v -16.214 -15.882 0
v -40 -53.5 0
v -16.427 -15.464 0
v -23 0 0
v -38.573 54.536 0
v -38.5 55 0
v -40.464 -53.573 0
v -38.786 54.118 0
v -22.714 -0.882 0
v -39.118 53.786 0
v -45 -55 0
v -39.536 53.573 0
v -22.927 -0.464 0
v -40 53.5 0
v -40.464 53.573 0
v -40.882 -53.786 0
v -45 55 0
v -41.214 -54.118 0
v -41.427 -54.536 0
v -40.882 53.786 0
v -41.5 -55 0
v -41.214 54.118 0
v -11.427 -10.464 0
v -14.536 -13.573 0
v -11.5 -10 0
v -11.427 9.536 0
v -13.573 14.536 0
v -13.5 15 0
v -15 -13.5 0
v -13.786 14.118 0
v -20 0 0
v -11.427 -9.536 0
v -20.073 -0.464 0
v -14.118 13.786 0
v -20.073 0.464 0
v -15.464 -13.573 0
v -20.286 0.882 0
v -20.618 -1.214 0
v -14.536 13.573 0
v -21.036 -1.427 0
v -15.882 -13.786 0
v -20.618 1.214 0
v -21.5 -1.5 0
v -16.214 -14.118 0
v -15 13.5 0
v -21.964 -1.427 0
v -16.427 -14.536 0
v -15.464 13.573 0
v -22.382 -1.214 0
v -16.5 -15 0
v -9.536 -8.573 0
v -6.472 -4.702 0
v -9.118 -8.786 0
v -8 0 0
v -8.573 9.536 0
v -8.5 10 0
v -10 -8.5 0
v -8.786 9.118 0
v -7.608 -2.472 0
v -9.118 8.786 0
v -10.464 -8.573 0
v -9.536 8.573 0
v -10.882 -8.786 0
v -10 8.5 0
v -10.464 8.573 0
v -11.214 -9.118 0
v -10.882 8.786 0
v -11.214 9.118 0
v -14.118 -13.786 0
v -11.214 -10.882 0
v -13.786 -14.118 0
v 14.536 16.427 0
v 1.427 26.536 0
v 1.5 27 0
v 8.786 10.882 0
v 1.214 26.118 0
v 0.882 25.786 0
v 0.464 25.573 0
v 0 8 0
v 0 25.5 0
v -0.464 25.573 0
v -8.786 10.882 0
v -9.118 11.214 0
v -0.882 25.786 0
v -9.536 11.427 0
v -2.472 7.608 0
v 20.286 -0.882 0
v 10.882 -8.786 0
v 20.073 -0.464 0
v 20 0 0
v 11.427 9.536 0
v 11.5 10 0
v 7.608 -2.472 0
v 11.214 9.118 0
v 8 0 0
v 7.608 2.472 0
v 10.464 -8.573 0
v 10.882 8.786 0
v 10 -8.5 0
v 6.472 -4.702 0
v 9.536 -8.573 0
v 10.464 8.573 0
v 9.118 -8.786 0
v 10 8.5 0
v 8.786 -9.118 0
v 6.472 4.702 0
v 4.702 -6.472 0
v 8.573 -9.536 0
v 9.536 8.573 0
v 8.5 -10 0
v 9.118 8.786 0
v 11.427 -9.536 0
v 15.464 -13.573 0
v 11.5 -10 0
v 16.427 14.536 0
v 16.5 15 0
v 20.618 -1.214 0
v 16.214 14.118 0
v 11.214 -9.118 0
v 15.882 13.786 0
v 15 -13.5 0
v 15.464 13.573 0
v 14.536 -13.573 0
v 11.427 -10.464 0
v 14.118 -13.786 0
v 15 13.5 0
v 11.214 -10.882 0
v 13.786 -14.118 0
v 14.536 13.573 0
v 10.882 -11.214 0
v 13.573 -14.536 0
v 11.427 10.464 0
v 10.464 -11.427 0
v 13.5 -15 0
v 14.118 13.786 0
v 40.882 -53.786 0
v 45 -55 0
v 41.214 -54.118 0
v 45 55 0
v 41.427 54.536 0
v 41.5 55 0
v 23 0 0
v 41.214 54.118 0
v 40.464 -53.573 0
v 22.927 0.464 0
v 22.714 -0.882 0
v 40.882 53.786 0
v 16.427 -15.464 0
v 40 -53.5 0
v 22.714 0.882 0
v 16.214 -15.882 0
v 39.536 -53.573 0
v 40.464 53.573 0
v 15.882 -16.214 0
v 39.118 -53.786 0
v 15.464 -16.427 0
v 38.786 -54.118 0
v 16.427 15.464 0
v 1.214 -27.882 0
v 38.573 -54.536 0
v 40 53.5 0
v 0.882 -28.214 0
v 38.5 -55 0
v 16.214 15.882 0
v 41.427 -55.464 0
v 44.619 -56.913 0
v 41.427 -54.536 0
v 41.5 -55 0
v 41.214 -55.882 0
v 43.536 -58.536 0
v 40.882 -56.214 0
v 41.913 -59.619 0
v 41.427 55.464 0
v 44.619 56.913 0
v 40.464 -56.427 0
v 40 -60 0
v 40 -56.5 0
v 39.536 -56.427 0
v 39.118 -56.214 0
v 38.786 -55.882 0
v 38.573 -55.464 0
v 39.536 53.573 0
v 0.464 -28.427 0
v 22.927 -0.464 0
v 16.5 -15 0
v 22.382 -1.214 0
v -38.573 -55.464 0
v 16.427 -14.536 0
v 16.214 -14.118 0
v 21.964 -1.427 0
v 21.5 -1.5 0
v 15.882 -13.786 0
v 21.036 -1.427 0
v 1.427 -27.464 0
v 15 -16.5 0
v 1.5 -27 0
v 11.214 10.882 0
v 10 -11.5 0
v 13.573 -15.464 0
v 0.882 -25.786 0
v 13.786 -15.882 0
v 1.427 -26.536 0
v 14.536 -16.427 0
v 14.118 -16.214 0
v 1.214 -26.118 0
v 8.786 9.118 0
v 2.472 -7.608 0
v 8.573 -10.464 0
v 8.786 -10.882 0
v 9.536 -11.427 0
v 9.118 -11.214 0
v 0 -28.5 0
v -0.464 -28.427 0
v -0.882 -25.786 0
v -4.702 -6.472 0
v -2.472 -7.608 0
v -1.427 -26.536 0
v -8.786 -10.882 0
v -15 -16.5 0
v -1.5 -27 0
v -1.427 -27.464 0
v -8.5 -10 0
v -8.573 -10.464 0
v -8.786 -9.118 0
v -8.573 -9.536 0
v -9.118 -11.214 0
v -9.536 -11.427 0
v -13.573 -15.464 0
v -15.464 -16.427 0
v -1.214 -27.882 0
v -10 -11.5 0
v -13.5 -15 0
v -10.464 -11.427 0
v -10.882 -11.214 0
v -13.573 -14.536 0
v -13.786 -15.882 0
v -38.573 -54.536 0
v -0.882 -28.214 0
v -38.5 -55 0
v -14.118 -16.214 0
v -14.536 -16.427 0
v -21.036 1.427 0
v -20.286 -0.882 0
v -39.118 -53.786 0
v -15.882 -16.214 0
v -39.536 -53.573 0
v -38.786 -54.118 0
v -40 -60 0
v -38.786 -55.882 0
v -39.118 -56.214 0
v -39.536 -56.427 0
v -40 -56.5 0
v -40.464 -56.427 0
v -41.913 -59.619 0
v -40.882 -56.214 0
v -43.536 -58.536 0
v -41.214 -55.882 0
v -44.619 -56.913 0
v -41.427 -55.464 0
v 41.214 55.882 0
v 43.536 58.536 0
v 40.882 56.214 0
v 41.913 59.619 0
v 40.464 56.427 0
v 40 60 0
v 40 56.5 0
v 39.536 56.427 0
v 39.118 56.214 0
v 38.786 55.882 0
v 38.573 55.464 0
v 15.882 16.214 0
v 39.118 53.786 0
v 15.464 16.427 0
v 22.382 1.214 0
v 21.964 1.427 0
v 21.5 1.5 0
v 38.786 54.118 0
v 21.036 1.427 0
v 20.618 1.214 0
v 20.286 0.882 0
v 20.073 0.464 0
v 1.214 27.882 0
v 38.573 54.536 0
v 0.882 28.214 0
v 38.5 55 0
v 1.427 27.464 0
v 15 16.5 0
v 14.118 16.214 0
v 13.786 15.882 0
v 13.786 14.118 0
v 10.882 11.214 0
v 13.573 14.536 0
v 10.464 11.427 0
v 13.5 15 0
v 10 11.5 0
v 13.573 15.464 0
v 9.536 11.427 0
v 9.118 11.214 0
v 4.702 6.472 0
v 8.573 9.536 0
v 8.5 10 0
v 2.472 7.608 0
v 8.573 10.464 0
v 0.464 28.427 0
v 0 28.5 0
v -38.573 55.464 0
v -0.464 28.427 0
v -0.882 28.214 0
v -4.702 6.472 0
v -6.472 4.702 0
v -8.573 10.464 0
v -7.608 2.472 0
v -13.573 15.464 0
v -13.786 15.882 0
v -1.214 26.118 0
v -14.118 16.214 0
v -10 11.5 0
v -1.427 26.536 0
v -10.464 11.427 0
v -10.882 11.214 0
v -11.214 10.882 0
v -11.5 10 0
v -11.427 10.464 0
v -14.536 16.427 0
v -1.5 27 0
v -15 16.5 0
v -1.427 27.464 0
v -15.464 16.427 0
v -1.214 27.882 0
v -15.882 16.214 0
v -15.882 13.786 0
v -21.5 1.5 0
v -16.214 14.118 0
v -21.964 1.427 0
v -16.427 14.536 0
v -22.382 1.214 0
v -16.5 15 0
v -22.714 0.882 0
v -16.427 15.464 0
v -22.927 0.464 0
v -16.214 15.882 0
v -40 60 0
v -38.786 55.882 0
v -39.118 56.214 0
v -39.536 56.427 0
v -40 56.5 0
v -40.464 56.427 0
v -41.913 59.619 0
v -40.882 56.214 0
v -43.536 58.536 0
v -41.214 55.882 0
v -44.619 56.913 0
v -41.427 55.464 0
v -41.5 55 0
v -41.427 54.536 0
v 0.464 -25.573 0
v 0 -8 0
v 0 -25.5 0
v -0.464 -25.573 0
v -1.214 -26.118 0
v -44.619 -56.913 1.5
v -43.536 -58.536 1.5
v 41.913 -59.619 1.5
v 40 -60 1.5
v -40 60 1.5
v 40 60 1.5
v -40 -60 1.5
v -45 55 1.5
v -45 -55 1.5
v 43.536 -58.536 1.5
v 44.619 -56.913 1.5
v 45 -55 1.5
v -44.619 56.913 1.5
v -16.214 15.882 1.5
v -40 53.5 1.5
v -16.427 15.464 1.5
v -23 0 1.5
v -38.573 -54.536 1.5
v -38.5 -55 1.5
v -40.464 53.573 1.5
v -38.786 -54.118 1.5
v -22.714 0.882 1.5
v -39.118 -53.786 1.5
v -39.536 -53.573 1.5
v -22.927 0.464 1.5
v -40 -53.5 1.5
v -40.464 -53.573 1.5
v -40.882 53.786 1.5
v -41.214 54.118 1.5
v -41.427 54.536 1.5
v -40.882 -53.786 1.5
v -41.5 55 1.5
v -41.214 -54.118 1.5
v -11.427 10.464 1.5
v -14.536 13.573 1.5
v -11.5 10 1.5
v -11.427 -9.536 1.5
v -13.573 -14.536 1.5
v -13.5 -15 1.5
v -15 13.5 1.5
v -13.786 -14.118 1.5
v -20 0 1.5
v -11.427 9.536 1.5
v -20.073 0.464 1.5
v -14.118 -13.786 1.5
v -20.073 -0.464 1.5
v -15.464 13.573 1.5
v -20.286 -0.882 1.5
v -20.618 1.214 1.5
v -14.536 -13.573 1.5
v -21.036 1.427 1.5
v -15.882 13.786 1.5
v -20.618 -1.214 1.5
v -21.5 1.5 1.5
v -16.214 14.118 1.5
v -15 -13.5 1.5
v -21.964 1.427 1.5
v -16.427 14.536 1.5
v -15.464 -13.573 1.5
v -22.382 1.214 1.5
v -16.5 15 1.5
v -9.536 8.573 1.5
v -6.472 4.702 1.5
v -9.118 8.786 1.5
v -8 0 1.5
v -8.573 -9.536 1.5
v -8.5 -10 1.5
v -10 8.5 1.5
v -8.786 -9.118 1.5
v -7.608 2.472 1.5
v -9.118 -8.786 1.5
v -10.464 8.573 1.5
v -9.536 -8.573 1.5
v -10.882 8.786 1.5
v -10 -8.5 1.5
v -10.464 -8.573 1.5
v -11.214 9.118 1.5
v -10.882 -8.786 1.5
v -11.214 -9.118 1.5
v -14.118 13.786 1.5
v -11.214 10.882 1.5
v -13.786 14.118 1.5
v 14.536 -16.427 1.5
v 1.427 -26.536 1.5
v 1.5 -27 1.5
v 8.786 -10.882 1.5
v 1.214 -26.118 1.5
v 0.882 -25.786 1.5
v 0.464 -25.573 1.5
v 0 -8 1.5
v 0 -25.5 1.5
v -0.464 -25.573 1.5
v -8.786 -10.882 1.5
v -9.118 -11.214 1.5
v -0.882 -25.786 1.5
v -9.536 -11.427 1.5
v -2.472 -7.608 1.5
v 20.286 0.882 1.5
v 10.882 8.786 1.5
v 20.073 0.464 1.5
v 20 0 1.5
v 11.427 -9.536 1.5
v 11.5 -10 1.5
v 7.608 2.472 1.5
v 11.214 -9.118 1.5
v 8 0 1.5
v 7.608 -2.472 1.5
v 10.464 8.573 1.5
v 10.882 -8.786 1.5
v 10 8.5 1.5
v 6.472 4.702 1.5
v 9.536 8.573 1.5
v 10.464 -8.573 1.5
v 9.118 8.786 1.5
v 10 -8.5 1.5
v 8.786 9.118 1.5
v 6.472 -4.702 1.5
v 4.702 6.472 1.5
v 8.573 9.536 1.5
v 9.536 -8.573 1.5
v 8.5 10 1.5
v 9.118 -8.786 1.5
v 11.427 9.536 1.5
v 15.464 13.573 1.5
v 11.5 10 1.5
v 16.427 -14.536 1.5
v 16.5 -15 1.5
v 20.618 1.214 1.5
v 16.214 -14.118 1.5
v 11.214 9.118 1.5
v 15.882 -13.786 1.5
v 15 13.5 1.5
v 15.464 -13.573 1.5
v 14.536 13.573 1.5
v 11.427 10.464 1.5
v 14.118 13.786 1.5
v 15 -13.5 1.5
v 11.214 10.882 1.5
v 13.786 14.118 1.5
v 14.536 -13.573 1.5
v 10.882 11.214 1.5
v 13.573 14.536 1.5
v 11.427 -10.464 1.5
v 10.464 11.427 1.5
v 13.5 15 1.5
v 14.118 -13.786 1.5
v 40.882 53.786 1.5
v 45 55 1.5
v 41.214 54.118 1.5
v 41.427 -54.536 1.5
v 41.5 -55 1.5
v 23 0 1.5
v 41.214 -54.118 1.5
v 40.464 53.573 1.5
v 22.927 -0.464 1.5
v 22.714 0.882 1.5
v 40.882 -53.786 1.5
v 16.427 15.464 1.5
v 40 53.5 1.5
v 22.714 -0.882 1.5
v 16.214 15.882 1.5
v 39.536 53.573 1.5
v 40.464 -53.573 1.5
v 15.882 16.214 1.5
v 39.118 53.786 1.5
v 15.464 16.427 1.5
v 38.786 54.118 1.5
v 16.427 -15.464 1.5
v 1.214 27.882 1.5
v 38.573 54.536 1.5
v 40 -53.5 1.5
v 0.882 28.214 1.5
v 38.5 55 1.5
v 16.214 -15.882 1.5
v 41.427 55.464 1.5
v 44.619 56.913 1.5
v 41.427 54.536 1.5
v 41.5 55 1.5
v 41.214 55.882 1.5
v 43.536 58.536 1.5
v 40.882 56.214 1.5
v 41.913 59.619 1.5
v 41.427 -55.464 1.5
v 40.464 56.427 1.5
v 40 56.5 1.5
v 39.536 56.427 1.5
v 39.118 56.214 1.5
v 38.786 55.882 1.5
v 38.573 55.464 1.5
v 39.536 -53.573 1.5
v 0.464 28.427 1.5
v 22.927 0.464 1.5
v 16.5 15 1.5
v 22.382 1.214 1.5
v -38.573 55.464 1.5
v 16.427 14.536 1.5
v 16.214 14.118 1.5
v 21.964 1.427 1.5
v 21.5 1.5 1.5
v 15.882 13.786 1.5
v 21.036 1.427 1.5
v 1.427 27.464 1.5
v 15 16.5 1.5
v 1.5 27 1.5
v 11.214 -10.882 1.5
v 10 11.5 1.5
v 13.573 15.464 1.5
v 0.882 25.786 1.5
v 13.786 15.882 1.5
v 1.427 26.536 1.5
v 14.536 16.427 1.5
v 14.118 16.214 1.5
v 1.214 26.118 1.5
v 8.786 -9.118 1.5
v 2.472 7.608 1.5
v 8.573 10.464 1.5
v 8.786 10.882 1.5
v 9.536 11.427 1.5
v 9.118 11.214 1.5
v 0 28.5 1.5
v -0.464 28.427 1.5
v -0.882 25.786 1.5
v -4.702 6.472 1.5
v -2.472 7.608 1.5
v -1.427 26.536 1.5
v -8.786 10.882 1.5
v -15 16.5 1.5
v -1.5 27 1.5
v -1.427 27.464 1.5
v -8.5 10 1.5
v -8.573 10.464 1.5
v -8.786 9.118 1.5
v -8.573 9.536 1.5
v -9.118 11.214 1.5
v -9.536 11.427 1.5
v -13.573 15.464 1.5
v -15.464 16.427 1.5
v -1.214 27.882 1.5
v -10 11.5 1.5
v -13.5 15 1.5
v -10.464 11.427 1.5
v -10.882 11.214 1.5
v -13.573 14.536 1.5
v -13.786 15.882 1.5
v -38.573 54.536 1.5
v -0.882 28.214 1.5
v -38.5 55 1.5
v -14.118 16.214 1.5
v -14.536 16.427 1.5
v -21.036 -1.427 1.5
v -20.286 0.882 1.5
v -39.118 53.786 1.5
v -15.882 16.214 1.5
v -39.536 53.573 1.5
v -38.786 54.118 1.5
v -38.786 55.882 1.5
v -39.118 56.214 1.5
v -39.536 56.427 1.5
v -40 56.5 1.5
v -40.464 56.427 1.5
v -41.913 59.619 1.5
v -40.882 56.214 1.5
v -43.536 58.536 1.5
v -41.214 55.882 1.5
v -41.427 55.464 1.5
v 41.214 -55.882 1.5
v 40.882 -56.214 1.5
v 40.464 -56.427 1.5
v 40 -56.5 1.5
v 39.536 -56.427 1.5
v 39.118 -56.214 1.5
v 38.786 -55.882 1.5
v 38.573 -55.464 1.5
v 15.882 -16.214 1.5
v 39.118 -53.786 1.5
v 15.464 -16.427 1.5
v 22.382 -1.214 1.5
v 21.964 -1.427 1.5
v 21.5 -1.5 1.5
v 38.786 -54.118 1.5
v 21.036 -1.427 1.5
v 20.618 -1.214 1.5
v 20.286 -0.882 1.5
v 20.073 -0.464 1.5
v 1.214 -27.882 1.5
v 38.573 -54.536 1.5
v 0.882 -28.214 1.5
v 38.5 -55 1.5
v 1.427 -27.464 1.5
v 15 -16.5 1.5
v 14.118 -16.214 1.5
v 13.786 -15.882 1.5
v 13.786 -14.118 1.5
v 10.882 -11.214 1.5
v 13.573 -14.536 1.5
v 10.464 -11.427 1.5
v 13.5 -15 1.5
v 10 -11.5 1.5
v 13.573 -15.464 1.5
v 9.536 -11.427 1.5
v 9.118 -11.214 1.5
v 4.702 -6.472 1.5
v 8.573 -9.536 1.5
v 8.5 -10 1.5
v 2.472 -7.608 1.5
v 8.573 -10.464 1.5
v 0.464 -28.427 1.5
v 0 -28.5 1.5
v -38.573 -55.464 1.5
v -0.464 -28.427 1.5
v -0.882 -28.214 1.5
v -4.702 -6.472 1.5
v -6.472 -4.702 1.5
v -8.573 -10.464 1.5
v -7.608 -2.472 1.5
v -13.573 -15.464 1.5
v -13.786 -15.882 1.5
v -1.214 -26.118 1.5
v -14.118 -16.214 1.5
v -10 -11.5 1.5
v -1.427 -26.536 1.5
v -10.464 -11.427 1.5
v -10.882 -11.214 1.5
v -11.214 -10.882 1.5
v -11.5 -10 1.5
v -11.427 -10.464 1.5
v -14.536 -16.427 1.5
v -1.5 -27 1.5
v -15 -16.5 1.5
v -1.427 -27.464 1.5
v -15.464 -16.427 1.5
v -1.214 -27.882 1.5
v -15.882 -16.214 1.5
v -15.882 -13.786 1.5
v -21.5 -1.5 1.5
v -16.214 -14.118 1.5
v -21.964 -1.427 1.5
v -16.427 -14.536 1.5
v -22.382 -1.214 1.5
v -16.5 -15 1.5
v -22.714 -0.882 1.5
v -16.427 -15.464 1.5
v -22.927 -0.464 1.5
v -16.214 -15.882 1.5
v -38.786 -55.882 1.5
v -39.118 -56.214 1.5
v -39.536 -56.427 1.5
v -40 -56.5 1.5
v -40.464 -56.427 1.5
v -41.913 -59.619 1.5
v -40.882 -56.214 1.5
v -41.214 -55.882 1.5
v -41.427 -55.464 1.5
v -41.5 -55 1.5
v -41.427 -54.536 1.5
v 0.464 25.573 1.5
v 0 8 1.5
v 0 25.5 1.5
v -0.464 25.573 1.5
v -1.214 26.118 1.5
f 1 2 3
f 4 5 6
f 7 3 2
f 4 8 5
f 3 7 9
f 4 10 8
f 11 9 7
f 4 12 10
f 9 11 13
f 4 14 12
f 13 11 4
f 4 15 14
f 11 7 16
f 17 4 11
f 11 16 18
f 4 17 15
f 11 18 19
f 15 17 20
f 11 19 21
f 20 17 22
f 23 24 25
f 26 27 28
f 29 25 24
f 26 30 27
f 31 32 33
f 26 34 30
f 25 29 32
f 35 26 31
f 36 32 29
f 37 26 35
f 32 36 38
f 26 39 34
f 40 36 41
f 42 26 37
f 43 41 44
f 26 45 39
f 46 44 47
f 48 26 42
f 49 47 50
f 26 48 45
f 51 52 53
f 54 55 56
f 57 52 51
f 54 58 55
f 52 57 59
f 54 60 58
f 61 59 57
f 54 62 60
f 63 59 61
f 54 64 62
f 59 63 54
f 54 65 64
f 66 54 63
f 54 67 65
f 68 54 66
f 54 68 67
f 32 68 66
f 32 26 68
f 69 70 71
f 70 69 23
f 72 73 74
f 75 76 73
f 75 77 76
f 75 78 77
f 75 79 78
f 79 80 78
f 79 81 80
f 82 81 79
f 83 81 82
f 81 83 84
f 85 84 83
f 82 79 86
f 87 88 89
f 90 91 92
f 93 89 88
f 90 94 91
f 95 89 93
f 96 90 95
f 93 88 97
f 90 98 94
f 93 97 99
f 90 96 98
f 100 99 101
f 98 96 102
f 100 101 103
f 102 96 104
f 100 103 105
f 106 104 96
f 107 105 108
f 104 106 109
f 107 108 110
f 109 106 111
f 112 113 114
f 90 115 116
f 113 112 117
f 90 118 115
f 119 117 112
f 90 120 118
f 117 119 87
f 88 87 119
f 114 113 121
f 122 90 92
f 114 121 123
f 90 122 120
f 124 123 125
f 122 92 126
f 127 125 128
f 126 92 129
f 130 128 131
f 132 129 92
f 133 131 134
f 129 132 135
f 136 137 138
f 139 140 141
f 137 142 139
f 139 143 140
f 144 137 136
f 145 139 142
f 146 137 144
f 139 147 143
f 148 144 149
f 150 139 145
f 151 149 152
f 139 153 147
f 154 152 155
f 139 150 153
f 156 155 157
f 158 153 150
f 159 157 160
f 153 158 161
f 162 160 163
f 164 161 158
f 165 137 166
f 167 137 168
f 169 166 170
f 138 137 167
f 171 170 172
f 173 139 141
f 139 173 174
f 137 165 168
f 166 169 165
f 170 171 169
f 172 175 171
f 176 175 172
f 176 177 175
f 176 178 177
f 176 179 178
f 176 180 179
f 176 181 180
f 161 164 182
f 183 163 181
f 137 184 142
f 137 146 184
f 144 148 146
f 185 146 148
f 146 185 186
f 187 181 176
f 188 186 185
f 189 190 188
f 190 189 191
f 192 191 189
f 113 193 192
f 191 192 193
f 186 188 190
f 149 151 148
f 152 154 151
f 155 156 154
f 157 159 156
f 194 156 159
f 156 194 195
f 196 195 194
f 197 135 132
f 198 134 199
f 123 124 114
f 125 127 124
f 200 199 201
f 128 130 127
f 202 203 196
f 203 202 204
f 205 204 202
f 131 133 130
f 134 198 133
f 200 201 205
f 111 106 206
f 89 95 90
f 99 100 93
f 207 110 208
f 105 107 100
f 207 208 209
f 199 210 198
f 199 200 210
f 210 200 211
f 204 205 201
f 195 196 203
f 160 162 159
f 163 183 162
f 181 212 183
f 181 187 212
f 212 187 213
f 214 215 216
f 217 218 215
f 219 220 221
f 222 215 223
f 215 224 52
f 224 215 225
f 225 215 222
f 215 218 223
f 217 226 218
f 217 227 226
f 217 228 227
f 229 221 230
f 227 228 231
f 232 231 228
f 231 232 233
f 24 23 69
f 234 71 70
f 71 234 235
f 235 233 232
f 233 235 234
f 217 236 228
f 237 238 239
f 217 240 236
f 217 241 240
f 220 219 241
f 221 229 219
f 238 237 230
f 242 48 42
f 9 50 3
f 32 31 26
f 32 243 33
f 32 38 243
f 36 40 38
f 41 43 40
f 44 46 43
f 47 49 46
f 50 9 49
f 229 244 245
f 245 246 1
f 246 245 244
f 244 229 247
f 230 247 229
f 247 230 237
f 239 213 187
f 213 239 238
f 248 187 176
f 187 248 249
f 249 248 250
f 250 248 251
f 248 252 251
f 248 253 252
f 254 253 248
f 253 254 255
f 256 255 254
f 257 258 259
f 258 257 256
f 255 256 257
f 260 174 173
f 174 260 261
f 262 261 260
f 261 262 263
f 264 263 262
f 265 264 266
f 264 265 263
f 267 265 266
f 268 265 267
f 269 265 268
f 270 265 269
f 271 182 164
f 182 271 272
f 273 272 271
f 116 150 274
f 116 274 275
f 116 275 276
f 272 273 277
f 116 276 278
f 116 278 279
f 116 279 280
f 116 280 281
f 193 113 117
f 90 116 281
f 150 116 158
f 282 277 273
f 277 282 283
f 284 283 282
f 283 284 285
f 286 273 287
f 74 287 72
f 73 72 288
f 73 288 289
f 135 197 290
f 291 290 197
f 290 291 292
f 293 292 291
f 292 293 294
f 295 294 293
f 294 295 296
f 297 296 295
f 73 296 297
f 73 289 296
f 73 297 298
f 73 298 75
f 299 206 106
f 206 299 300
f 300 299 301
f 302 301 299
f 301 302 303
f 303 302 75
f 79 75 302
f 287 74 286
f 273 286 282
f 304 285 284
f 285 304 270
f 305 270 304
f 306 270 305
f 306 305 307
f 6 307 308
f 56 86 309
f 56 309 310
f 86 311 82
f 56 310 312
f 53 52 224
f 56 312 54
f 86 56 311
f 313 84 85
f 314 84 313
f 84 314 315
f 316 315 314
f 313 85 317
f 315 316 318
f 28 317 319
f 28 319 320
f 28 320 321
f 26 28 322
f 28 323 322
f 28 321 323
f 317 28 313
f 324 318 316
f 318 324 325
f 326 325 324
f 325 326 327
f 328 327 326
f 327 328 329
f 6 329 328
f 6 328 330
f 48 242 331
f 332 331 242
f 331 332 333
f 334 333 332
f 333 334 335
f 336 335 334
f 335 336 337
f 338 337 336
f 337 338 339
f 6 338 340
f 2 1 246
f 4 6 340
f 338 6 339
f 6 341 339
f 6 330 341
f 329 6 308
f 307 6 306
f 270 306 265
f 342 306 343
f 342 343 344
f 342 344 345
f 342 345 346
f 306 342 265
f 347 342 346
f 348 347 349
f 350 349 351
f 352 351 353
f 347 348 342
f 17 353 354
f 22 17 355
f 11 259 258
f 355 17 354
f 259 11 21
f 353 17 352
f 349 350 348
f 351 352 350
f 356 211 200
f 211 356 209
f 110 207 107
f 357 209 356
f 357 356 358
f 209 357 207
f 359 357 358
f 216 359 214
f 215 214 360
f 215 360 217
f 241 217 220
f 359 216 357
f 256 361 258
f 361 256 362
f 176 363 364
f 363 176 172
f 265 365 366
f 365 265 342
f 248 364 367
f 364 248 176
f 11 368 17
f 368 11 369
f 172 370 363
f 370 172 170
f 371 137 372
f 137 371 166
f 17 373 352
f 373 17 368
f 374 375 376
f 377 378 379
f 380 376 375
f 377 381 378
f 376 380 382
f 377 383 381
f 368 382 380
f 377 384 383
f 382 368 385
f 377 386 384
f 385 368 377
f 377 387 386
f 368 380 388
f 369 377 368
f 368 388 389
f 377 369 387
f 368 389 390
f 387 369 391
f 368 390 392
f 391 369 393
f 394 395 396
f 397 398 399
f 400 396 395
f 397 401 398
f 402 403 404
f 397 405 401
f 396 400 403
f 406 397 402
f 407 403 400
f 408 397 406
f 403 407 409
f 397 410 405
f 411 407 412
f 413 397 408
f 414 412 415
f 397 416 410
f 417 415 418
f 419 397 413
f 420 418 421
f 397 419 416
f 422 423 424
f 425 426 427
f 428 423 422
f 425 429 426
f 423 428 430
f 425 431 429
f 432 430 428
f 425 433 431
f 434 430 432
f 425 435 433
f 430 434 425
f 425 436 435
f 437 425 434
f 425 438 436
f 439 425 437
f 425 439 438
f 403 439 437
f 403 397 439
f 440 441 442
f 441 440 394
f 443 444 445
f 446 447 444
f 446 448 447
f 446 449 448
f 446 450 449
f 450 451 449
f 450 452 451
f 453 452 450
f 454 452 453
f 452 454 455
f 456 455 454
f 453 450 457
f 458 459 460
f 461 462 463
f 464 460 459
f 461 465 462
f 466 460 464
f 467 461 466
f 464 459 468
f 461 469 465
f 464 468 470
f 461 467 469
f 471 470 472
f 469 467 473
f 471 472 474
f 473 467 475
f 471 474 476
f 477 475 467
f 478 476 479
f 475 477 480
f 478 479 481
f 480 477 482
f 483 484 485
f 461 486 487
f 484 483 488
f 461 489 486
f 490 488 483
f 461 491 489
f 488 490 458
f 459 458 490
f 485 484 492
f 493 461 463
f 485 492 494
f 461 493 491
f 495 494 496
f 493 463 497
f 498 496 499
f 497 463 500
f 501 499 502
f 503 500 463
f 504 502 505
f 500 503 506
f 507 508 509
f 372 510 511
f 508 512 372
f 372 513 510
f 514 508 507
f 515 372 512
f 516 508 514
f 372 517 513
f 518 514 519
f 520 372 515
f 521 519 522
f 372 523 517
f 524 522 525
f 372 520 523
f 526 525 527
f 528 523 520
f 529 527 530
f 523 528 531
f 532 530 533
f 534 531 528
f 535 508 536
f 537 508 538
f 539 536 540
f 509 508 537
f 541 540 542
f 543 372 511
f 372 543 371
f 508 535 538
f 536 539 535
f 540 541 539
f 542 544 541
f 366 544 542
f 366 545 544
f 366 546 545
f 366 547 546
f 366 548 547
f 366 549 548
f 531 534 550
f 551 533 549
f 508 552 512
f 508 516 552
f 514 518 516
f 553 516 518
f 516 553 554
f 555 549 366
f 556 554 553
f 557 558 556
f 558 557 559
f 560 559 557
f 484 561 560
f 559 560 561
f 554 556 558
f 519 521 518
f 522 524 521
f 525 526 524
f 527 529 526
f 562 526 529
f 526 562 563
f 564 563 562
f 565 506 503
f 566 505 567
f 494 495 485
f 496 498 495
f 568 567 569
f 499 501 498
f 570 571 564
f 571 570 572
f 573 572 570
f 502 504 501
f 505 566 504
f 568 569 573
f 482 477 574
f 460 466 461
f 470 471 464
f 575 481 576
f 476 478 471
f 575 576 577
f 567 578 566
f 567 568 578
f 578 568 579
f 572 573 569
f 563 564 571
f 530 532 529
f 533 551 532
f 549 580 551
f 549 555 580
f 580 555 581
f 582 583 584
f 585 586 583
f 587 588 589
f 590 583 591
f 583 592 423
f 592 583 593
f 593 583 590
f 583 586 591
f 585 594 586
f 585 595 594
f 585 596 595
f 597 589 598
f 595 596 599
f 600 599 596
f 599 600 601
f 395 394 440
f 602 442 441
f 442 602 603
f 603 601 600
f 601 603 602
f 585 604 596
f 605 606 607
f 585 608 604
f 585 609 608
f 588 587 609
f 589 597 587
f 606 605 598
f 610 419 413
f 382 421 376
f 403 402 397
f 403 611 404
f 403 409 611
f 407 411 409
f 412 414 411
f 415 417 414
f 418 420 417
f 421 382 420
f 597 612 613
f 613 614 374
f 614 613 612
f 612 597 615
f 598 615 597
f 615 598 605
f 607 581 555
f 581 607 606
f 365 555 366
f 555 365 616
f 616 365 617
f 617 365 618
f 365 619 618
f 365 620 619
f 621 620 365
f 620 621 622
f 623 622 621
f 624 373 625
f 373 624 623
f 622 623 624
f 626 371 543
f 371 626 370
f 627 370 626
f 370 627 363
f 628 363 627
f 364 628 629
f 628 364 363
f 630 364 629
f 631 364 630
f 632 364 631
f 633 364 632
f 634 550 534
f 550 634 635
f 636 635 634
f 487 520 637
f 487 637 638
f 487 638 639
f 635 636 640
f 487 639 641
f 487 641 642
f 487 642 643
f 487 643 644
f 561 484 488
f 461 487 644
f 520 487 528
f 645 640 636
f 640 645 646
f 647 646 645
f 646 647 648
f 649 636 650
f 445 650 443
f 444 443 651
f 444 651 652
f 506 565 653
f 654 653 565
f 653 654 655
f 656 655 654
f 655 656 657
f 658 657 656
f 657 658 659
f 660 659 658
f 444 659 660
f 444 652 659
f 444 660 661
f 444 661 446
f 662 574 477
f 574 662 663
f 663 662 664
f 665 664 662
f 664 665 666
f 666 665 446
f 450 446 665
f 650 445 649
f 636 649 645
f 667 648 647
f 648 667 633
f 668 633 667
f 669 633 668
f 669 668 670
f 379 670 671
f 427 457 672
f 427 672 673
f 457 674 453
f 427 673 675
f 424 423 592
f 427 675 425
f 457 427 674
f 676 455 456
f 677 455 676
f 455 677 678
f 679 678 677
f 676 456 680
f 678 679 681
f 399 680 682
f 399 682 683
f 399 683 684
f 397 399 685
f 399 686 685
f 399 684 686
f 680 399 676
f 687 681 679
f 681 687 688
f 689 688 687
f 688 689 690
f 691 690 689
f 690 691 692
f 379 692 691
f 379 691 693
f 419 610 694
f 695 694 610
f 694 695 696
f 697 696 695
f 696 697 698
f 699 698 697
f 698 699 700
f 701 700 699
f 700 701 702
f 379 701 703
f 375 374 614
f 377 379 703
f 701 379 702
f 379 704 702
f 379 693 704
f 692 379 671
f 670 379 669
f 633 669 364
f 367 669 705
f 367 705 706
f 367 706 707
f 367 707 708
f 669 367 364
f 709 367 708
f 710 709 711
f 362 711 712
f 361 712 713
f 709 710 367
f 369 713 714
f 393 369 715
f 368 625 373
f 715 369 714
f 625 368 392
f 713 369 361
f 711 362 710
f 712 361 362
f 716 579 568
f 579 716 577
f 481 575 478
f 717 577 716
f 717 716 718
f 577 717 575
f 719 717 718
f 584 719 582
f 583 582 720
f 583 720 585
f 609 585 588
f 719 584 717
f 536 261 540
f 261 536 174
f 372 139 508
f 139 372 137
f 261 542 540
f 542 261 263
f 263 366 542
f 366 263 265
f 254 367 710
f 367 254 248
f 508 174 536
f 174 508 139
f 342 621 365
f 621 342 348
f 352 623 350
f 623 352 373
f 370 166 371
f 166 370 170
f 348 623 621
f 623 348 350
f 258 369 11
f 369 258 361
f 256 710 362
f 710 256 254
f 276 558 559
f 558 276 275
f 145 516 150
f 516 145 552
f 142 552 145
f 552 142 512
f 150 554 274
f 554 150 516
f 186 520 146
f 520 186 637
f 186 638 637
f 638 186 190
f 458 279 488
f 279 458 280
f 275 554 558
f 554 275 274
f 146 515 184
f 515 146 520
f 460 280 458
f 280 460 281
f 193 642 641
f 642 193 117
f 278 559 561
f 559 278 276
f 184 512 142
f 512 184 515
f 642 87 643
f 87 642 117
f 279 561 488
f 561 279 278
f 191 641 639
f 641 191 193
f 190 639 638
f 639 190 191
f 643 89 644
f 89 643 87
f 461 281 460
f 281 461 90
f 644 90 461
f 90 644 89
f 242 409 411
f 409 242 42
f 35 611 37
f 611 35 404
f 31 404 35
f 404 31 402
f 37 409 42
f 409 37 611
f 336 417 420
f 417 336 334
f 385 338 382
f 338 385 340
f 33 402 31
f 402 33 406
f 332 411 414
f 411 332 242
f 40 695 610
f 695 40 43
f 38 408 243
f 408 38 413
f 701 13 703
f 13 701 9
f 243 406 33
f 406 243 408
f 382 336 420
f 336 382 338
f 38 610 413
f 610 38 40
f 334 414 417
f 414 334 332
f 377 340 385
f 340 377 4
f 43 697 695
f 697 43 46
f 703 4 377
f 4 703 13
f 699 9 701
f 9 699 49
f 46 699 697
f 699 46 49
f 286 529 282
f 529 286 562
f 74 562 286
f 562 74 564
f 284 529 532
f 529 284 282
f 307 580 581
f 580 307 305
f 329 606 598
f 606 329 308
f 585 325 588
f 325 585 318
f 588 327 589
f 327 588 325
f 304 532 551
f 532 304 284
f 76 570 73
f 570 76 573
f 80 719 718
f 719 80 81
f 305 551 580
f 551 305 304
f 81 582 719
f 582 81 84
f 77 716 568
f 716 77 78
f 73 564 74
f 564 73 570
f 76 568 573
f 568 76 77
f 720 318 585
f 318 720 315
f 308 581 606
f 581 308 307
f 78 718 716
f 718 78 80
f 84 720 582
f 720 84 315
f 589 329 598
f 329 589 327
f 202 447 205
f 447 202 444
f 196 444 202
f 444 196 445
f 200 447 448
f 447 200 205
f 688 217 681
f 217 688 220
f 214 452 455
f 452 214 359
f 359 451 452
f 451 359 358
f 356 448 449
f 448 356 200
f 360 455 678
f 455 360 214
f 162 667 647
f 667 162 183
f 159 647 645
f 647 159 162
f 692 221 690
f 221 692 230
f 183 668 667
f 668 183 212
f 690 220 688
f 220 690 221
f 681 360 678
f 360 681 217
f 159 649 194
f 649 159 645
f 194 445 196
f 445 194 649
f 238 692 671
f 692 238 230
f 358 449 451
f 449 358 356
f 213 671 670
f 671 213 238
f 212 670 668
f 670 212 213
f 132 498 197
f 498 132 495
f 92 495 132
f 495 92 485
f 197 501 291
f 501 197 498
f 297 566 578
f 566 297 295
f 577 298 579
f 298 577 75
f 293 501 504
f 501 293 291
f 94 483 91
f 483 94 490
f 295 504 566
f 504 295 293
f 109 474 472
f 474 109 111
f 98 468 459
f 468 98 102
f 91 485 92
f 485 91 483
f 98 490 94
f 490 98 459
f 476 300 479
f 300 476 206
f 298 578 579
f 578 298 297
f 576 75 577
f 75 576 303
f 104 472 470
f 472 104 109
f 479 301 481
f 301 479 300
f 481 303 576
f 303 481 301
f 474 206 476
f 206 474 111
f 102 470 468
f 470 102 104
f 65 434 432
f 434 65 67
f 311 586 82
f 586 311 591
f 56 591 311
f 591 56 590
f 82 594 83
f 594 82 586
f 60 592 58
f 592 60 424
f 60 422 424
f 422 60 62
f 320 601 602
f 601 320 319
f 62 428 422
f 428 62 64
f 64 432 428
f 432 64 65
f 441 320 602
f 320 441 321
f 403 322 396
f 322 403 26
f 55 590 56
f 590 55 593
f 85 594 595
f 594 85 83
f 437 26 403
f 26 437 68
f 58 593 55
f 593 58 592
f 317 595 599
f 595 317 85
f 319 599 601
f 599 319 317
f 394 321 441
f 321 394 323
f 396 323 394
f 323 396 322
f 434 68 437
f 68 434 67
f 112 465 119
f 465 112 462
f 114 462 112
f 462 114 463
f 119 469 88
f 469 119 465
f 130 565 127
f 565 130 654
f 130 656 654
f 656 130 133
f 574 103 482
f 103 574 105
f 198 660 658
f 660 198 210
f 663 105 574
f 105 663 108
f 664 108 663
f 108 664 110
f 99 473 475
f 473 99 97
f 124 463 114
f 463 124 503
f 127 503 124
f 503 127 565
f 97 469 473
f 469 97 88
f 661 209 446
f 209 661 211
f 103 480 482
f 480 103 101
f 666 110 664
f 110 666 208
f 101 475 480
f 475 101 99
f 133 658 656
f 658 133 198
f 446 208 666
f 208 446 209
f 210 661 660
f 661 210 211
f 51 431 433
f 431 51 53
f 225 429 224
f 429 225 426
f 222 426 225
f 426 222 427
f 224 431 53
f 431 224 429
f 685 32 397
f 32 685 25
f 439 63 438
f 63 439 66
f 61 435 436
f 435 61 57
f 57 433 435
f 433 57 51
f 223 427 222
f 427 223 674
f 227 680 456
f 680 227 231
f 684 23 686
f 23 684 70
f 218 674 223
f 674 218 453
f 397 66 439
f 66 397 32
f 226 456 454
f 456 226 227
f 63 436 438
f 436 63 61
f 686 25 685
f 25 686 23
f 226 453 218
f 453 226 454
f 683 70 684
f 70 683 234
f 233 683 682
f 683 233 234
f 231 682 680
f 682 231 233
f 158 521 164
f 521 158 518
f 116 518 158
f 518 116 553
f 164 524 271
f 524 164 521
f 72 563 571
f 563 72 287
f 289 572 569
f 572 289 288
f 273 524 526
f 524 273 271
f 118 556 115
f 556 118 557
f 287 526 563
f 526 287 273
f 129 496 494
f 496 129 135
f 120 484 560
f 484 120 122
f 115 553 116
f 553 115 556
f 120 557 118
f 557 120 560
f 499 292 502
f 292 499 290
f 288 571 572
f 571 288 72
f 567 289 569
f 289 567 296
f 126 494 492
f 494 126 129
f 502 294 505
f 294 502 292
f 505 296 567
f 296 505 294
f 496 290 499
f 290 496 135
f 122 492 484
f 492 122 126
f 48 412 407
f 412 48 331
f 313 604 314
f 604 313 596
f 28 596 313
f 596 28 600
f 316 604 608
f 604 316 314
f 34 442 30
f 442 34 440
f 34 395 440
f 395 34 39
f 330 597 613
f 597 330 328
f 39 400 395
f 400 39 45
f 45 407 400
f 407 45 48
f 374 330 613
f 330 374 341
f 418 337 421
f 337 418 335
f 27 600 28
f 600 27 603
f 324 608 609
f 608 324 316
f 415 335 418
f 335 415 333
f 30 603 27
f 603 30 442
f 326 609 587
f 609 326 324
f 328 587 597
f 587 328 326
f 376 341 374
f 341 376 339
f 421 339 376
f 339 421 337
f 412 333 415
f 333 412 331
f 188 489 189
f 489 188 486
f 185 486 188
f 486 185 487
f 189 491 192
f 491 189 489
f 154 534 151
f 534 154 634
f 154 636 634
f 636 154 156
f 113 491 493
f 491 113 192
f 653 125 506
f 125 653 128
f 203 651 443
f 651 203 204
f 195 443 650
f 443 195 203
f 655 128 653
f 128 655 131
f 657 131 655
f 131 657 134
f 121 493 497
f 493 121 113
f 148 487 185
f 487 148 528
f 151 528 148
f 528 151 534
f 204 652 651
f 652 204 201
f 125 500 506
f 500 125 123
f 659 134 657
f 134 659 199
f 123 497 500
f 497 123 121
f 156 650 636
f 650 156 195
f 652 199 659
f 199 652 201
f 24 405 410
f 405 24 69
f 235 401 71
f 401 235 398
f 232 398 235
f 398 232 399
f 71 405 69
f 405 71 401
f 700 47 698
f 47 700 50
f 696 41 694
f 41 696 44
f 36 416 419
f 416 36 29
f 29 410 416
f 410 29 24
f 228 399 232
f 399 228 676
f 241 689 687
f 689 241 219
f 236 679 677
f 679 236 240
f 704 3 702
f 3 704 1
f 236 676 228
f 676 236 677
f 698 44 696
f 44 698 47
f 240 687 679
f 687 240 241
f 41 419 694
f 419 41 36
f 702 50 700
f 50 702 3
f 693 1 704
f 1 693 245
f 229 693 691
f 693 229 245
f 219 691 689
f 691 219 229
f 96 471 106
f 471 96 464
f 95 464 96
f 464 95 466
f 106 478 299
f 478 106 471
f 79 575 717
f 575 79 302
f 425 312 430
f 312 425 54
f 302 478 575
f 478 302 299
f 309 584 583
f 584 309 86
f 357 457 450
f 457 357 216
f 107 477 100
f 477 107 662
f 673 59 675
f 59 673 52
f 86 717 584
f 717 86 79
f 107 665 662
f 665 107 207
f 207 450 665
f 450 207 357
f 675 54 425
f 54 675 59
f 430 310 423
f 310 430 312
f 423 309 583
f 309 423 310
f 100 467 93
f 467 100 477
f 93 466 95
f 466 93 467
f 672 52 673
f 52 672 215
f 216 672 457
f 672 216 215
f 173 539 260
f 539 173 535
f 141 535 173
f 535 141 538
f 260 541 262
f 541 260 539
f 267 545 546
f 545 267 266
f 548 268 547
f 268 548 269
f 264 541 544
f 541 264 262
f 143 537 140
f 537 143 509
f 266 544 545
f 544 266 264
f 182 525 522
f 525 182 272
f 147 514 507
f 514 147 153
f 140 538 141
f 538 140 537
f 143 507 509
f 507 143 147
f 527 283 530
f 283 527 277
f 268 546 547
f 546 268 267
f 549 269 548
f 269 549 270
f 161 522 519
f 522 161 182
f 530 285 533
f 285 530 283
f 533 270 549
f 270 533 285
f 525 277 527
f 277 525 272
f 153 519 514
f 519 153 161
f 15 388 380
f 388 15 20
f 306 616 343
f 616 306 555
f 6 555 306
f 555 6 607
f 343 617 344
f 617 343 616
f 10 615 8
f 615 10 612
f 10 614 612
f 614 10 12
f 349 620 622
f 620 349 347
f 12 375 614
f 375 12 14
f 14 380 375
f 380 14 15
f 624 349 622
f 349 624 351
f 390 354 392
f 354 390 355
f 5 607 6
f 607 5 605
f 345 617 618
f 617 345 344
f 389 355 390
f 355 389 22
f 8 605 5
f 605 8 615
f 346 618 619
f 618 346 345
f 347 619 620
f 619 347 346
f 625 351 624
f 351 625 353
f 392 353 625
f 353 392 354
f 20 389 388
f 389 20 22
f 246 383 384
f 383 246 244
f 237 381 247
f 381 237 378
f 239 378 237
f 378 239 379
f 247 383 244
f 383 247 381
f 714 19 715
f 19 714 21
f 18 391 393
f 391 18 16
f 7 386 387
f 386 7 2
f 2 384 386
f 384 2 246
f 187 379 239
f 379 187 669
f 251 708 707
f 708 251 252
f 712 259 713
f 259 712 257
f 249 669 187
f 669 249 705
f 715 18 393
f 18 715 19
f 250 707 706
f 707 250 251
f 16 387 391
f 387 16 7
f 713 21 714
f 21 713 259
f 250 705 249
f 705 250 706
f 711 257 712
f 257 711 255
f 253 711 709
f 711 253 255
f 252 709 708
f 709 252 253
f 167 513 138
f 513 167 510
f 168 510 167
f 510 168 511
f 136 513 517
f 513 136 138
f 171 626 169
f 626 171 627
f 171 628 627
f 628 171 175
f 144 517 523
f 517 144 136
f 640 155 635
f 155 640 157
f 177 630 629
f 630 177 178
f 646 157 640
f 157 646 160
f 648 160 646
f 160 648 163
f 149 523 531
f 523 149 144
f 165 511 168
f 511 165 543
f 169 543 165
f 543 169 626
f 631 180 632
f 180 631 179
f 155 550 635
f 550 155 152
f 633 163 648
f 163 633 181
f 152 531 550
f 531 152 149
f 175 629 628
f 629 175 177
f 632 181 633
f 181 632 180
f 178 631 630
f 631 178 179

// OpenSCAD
// file: flight_controller_vert_screw_holes.scad
module flight_controller_vert_screw_holes(hole_x, hole_y, bore_diameter, height, fn) {
    translate([hole_x/2, hole_y/2, 0])
        cylinder(d=bore_diameter, h=height, $fn=fn);
    
    translate([-hole_x/2, hole_y/2, 0])
        cylinder(d=bore_diameter, h=height, $fn=fn);
    
    translate([-hole_x/2, -hole_y/2, 0])
        cylinder(d=bore_diameter, h=height, $fn=fn);
    
    translate([hole_x/2, -hole_y/2, 0])
        cylinder(d=bore_diameter, h=height, $fn=fn);
}
// file: flight_controller_vib_isolation_mount_holes.scad
module flight_controller_vib_isolation_mount_holes(case_floor, fn) {
    cm_x = 43 /2;
    cm_y = 54 /2;

    translate([ cm_x, 0,0])
        cylinder(d=3, h=case_floor, $fn=fn);
    translate([-cm_x, 0,0])
        cylinder(d=3, h=case_floor, $fn=fn);
    translate([0, cm_y, 0])
        cylinder(d=3, h=case_floor, $fn=fn);
    translate([0,-cm_y, 0])
        cylinder(d=3, h=case_floor, $fn=fn);
    
    s1 = 10;
    translate([ s1, s1,0])
        cylinder(d=3, h=case_floor, $fn=fn);
    translate([-s1, s1,0])
        cylinder(d=3, h=case_floor, $fn=fn);
    translate([s1, -s1, 0])
        cylinder(d=3, h=case_floor, $fn=fn);
    translate([-s1,-s1, 0])
        cylinder(d=3, h=case_floor, $fn=fn);

    s2 = 15;
    translate([ s2, s2,0])
        cylinder(d=3, h=case_floor, $fn=fn);
    translate([-s2, s2,0])
        cylinder(d=3, h=case_floor, $fn=fn);
    translate([s2, -s2, 0])
        cylinder(d=3, h=case_floor, $fn=fn);
    translate([-s2,-s2, 0])
        cylinder(d=3, h=case_floor, $fn=fn);
    
    cylinder(d=16, h=case_floor, $fn=fn);
}
// file: flight_controller_face_panel_base.scad
use <./flight_controller_vert_screw_holes.scad>;

module flight_controller_face_panel_base(hole_x, hole_y, post_diameter, bore_diameter, case_floor, fn) {
    difference() {
        hull() {
           translate([hole_x/2, hole_y/2, 0])
                cylinder(d=post_diameter, h=case_floor, $fn=fn);
            
            translate([-hole_x/2, hole_y/2, 0])
                cylinder(d=post_diameter, h=case_floor, $fn=fn);
            
            translate([-hole_x/2, -hole_y/2, 0])
                cylinder(d=post_diameter, h=case_floor, $fn=fn);
            
            translate([hole_x/2, -hole_y/2, 0])
                cylinder(d=post_diameter, h=case_floor, $fn=fn);
       }
       flight_controller_vert_screw_holes(hole_x, hole_y, bore_diameter, case_floor, fn);      
   }
}
// file: flight_controller_box_params.scad
function flight_controller_box_params() = [
    ["hole_x", 80],
    ["hole_y", 110],
    ["post_diameter", 10],
    ["bore_diameter", 3],
    ["case_z", 45],
    ["case_floor_thickness", 1.5],
    ["case_wall_thickness", 12],
    ["case_wall_height", 11.5],
    ["fn", 20],
];

// usage: find(params, "hole_x");
function find(h,k)= h[search([k], h, 1)[0]][1];
// main file
use <./flight_controller_box_params.scad>;
use <./flight_controller_face_panel_base.scad>;
use <./flight_controller_vib_isolation_mount_holes.scad>;
use <./flight_controller_vert_screw_holes.scad>;

module flight_controller_floor_panel(hole_x, hole_y, post_diameter, bore_diameter, z_pos, case_floor, fn) {
    translate([0, 0, z_pos])
        difference() {
            flight_controller_face_panel_base(hole_x, hole_y, post_diameter, bore_diameter, case_floor, fn);
            union(){
                flight_controller_vib_isolation_mount_holes(case_floor, fn);
                flight_controller_vert_screw_holes(hole_x, hole_y, bore_diameter, case_floor, fn);
            }
        }
}

module flight_controller_floor_panel_part() {
    params = flight_controller_box_params();
    flight_controller_floor_panel(
        find(params, "hole_x"),
        find(params, "hole_y"),
        find(params, "post_diameter"),
        find(params, "bore_diameter"),
        0,
        find(params, "case_floor_thickness"),
        find(params, "fn"));
}

flight_controller_floor_panel_part();
